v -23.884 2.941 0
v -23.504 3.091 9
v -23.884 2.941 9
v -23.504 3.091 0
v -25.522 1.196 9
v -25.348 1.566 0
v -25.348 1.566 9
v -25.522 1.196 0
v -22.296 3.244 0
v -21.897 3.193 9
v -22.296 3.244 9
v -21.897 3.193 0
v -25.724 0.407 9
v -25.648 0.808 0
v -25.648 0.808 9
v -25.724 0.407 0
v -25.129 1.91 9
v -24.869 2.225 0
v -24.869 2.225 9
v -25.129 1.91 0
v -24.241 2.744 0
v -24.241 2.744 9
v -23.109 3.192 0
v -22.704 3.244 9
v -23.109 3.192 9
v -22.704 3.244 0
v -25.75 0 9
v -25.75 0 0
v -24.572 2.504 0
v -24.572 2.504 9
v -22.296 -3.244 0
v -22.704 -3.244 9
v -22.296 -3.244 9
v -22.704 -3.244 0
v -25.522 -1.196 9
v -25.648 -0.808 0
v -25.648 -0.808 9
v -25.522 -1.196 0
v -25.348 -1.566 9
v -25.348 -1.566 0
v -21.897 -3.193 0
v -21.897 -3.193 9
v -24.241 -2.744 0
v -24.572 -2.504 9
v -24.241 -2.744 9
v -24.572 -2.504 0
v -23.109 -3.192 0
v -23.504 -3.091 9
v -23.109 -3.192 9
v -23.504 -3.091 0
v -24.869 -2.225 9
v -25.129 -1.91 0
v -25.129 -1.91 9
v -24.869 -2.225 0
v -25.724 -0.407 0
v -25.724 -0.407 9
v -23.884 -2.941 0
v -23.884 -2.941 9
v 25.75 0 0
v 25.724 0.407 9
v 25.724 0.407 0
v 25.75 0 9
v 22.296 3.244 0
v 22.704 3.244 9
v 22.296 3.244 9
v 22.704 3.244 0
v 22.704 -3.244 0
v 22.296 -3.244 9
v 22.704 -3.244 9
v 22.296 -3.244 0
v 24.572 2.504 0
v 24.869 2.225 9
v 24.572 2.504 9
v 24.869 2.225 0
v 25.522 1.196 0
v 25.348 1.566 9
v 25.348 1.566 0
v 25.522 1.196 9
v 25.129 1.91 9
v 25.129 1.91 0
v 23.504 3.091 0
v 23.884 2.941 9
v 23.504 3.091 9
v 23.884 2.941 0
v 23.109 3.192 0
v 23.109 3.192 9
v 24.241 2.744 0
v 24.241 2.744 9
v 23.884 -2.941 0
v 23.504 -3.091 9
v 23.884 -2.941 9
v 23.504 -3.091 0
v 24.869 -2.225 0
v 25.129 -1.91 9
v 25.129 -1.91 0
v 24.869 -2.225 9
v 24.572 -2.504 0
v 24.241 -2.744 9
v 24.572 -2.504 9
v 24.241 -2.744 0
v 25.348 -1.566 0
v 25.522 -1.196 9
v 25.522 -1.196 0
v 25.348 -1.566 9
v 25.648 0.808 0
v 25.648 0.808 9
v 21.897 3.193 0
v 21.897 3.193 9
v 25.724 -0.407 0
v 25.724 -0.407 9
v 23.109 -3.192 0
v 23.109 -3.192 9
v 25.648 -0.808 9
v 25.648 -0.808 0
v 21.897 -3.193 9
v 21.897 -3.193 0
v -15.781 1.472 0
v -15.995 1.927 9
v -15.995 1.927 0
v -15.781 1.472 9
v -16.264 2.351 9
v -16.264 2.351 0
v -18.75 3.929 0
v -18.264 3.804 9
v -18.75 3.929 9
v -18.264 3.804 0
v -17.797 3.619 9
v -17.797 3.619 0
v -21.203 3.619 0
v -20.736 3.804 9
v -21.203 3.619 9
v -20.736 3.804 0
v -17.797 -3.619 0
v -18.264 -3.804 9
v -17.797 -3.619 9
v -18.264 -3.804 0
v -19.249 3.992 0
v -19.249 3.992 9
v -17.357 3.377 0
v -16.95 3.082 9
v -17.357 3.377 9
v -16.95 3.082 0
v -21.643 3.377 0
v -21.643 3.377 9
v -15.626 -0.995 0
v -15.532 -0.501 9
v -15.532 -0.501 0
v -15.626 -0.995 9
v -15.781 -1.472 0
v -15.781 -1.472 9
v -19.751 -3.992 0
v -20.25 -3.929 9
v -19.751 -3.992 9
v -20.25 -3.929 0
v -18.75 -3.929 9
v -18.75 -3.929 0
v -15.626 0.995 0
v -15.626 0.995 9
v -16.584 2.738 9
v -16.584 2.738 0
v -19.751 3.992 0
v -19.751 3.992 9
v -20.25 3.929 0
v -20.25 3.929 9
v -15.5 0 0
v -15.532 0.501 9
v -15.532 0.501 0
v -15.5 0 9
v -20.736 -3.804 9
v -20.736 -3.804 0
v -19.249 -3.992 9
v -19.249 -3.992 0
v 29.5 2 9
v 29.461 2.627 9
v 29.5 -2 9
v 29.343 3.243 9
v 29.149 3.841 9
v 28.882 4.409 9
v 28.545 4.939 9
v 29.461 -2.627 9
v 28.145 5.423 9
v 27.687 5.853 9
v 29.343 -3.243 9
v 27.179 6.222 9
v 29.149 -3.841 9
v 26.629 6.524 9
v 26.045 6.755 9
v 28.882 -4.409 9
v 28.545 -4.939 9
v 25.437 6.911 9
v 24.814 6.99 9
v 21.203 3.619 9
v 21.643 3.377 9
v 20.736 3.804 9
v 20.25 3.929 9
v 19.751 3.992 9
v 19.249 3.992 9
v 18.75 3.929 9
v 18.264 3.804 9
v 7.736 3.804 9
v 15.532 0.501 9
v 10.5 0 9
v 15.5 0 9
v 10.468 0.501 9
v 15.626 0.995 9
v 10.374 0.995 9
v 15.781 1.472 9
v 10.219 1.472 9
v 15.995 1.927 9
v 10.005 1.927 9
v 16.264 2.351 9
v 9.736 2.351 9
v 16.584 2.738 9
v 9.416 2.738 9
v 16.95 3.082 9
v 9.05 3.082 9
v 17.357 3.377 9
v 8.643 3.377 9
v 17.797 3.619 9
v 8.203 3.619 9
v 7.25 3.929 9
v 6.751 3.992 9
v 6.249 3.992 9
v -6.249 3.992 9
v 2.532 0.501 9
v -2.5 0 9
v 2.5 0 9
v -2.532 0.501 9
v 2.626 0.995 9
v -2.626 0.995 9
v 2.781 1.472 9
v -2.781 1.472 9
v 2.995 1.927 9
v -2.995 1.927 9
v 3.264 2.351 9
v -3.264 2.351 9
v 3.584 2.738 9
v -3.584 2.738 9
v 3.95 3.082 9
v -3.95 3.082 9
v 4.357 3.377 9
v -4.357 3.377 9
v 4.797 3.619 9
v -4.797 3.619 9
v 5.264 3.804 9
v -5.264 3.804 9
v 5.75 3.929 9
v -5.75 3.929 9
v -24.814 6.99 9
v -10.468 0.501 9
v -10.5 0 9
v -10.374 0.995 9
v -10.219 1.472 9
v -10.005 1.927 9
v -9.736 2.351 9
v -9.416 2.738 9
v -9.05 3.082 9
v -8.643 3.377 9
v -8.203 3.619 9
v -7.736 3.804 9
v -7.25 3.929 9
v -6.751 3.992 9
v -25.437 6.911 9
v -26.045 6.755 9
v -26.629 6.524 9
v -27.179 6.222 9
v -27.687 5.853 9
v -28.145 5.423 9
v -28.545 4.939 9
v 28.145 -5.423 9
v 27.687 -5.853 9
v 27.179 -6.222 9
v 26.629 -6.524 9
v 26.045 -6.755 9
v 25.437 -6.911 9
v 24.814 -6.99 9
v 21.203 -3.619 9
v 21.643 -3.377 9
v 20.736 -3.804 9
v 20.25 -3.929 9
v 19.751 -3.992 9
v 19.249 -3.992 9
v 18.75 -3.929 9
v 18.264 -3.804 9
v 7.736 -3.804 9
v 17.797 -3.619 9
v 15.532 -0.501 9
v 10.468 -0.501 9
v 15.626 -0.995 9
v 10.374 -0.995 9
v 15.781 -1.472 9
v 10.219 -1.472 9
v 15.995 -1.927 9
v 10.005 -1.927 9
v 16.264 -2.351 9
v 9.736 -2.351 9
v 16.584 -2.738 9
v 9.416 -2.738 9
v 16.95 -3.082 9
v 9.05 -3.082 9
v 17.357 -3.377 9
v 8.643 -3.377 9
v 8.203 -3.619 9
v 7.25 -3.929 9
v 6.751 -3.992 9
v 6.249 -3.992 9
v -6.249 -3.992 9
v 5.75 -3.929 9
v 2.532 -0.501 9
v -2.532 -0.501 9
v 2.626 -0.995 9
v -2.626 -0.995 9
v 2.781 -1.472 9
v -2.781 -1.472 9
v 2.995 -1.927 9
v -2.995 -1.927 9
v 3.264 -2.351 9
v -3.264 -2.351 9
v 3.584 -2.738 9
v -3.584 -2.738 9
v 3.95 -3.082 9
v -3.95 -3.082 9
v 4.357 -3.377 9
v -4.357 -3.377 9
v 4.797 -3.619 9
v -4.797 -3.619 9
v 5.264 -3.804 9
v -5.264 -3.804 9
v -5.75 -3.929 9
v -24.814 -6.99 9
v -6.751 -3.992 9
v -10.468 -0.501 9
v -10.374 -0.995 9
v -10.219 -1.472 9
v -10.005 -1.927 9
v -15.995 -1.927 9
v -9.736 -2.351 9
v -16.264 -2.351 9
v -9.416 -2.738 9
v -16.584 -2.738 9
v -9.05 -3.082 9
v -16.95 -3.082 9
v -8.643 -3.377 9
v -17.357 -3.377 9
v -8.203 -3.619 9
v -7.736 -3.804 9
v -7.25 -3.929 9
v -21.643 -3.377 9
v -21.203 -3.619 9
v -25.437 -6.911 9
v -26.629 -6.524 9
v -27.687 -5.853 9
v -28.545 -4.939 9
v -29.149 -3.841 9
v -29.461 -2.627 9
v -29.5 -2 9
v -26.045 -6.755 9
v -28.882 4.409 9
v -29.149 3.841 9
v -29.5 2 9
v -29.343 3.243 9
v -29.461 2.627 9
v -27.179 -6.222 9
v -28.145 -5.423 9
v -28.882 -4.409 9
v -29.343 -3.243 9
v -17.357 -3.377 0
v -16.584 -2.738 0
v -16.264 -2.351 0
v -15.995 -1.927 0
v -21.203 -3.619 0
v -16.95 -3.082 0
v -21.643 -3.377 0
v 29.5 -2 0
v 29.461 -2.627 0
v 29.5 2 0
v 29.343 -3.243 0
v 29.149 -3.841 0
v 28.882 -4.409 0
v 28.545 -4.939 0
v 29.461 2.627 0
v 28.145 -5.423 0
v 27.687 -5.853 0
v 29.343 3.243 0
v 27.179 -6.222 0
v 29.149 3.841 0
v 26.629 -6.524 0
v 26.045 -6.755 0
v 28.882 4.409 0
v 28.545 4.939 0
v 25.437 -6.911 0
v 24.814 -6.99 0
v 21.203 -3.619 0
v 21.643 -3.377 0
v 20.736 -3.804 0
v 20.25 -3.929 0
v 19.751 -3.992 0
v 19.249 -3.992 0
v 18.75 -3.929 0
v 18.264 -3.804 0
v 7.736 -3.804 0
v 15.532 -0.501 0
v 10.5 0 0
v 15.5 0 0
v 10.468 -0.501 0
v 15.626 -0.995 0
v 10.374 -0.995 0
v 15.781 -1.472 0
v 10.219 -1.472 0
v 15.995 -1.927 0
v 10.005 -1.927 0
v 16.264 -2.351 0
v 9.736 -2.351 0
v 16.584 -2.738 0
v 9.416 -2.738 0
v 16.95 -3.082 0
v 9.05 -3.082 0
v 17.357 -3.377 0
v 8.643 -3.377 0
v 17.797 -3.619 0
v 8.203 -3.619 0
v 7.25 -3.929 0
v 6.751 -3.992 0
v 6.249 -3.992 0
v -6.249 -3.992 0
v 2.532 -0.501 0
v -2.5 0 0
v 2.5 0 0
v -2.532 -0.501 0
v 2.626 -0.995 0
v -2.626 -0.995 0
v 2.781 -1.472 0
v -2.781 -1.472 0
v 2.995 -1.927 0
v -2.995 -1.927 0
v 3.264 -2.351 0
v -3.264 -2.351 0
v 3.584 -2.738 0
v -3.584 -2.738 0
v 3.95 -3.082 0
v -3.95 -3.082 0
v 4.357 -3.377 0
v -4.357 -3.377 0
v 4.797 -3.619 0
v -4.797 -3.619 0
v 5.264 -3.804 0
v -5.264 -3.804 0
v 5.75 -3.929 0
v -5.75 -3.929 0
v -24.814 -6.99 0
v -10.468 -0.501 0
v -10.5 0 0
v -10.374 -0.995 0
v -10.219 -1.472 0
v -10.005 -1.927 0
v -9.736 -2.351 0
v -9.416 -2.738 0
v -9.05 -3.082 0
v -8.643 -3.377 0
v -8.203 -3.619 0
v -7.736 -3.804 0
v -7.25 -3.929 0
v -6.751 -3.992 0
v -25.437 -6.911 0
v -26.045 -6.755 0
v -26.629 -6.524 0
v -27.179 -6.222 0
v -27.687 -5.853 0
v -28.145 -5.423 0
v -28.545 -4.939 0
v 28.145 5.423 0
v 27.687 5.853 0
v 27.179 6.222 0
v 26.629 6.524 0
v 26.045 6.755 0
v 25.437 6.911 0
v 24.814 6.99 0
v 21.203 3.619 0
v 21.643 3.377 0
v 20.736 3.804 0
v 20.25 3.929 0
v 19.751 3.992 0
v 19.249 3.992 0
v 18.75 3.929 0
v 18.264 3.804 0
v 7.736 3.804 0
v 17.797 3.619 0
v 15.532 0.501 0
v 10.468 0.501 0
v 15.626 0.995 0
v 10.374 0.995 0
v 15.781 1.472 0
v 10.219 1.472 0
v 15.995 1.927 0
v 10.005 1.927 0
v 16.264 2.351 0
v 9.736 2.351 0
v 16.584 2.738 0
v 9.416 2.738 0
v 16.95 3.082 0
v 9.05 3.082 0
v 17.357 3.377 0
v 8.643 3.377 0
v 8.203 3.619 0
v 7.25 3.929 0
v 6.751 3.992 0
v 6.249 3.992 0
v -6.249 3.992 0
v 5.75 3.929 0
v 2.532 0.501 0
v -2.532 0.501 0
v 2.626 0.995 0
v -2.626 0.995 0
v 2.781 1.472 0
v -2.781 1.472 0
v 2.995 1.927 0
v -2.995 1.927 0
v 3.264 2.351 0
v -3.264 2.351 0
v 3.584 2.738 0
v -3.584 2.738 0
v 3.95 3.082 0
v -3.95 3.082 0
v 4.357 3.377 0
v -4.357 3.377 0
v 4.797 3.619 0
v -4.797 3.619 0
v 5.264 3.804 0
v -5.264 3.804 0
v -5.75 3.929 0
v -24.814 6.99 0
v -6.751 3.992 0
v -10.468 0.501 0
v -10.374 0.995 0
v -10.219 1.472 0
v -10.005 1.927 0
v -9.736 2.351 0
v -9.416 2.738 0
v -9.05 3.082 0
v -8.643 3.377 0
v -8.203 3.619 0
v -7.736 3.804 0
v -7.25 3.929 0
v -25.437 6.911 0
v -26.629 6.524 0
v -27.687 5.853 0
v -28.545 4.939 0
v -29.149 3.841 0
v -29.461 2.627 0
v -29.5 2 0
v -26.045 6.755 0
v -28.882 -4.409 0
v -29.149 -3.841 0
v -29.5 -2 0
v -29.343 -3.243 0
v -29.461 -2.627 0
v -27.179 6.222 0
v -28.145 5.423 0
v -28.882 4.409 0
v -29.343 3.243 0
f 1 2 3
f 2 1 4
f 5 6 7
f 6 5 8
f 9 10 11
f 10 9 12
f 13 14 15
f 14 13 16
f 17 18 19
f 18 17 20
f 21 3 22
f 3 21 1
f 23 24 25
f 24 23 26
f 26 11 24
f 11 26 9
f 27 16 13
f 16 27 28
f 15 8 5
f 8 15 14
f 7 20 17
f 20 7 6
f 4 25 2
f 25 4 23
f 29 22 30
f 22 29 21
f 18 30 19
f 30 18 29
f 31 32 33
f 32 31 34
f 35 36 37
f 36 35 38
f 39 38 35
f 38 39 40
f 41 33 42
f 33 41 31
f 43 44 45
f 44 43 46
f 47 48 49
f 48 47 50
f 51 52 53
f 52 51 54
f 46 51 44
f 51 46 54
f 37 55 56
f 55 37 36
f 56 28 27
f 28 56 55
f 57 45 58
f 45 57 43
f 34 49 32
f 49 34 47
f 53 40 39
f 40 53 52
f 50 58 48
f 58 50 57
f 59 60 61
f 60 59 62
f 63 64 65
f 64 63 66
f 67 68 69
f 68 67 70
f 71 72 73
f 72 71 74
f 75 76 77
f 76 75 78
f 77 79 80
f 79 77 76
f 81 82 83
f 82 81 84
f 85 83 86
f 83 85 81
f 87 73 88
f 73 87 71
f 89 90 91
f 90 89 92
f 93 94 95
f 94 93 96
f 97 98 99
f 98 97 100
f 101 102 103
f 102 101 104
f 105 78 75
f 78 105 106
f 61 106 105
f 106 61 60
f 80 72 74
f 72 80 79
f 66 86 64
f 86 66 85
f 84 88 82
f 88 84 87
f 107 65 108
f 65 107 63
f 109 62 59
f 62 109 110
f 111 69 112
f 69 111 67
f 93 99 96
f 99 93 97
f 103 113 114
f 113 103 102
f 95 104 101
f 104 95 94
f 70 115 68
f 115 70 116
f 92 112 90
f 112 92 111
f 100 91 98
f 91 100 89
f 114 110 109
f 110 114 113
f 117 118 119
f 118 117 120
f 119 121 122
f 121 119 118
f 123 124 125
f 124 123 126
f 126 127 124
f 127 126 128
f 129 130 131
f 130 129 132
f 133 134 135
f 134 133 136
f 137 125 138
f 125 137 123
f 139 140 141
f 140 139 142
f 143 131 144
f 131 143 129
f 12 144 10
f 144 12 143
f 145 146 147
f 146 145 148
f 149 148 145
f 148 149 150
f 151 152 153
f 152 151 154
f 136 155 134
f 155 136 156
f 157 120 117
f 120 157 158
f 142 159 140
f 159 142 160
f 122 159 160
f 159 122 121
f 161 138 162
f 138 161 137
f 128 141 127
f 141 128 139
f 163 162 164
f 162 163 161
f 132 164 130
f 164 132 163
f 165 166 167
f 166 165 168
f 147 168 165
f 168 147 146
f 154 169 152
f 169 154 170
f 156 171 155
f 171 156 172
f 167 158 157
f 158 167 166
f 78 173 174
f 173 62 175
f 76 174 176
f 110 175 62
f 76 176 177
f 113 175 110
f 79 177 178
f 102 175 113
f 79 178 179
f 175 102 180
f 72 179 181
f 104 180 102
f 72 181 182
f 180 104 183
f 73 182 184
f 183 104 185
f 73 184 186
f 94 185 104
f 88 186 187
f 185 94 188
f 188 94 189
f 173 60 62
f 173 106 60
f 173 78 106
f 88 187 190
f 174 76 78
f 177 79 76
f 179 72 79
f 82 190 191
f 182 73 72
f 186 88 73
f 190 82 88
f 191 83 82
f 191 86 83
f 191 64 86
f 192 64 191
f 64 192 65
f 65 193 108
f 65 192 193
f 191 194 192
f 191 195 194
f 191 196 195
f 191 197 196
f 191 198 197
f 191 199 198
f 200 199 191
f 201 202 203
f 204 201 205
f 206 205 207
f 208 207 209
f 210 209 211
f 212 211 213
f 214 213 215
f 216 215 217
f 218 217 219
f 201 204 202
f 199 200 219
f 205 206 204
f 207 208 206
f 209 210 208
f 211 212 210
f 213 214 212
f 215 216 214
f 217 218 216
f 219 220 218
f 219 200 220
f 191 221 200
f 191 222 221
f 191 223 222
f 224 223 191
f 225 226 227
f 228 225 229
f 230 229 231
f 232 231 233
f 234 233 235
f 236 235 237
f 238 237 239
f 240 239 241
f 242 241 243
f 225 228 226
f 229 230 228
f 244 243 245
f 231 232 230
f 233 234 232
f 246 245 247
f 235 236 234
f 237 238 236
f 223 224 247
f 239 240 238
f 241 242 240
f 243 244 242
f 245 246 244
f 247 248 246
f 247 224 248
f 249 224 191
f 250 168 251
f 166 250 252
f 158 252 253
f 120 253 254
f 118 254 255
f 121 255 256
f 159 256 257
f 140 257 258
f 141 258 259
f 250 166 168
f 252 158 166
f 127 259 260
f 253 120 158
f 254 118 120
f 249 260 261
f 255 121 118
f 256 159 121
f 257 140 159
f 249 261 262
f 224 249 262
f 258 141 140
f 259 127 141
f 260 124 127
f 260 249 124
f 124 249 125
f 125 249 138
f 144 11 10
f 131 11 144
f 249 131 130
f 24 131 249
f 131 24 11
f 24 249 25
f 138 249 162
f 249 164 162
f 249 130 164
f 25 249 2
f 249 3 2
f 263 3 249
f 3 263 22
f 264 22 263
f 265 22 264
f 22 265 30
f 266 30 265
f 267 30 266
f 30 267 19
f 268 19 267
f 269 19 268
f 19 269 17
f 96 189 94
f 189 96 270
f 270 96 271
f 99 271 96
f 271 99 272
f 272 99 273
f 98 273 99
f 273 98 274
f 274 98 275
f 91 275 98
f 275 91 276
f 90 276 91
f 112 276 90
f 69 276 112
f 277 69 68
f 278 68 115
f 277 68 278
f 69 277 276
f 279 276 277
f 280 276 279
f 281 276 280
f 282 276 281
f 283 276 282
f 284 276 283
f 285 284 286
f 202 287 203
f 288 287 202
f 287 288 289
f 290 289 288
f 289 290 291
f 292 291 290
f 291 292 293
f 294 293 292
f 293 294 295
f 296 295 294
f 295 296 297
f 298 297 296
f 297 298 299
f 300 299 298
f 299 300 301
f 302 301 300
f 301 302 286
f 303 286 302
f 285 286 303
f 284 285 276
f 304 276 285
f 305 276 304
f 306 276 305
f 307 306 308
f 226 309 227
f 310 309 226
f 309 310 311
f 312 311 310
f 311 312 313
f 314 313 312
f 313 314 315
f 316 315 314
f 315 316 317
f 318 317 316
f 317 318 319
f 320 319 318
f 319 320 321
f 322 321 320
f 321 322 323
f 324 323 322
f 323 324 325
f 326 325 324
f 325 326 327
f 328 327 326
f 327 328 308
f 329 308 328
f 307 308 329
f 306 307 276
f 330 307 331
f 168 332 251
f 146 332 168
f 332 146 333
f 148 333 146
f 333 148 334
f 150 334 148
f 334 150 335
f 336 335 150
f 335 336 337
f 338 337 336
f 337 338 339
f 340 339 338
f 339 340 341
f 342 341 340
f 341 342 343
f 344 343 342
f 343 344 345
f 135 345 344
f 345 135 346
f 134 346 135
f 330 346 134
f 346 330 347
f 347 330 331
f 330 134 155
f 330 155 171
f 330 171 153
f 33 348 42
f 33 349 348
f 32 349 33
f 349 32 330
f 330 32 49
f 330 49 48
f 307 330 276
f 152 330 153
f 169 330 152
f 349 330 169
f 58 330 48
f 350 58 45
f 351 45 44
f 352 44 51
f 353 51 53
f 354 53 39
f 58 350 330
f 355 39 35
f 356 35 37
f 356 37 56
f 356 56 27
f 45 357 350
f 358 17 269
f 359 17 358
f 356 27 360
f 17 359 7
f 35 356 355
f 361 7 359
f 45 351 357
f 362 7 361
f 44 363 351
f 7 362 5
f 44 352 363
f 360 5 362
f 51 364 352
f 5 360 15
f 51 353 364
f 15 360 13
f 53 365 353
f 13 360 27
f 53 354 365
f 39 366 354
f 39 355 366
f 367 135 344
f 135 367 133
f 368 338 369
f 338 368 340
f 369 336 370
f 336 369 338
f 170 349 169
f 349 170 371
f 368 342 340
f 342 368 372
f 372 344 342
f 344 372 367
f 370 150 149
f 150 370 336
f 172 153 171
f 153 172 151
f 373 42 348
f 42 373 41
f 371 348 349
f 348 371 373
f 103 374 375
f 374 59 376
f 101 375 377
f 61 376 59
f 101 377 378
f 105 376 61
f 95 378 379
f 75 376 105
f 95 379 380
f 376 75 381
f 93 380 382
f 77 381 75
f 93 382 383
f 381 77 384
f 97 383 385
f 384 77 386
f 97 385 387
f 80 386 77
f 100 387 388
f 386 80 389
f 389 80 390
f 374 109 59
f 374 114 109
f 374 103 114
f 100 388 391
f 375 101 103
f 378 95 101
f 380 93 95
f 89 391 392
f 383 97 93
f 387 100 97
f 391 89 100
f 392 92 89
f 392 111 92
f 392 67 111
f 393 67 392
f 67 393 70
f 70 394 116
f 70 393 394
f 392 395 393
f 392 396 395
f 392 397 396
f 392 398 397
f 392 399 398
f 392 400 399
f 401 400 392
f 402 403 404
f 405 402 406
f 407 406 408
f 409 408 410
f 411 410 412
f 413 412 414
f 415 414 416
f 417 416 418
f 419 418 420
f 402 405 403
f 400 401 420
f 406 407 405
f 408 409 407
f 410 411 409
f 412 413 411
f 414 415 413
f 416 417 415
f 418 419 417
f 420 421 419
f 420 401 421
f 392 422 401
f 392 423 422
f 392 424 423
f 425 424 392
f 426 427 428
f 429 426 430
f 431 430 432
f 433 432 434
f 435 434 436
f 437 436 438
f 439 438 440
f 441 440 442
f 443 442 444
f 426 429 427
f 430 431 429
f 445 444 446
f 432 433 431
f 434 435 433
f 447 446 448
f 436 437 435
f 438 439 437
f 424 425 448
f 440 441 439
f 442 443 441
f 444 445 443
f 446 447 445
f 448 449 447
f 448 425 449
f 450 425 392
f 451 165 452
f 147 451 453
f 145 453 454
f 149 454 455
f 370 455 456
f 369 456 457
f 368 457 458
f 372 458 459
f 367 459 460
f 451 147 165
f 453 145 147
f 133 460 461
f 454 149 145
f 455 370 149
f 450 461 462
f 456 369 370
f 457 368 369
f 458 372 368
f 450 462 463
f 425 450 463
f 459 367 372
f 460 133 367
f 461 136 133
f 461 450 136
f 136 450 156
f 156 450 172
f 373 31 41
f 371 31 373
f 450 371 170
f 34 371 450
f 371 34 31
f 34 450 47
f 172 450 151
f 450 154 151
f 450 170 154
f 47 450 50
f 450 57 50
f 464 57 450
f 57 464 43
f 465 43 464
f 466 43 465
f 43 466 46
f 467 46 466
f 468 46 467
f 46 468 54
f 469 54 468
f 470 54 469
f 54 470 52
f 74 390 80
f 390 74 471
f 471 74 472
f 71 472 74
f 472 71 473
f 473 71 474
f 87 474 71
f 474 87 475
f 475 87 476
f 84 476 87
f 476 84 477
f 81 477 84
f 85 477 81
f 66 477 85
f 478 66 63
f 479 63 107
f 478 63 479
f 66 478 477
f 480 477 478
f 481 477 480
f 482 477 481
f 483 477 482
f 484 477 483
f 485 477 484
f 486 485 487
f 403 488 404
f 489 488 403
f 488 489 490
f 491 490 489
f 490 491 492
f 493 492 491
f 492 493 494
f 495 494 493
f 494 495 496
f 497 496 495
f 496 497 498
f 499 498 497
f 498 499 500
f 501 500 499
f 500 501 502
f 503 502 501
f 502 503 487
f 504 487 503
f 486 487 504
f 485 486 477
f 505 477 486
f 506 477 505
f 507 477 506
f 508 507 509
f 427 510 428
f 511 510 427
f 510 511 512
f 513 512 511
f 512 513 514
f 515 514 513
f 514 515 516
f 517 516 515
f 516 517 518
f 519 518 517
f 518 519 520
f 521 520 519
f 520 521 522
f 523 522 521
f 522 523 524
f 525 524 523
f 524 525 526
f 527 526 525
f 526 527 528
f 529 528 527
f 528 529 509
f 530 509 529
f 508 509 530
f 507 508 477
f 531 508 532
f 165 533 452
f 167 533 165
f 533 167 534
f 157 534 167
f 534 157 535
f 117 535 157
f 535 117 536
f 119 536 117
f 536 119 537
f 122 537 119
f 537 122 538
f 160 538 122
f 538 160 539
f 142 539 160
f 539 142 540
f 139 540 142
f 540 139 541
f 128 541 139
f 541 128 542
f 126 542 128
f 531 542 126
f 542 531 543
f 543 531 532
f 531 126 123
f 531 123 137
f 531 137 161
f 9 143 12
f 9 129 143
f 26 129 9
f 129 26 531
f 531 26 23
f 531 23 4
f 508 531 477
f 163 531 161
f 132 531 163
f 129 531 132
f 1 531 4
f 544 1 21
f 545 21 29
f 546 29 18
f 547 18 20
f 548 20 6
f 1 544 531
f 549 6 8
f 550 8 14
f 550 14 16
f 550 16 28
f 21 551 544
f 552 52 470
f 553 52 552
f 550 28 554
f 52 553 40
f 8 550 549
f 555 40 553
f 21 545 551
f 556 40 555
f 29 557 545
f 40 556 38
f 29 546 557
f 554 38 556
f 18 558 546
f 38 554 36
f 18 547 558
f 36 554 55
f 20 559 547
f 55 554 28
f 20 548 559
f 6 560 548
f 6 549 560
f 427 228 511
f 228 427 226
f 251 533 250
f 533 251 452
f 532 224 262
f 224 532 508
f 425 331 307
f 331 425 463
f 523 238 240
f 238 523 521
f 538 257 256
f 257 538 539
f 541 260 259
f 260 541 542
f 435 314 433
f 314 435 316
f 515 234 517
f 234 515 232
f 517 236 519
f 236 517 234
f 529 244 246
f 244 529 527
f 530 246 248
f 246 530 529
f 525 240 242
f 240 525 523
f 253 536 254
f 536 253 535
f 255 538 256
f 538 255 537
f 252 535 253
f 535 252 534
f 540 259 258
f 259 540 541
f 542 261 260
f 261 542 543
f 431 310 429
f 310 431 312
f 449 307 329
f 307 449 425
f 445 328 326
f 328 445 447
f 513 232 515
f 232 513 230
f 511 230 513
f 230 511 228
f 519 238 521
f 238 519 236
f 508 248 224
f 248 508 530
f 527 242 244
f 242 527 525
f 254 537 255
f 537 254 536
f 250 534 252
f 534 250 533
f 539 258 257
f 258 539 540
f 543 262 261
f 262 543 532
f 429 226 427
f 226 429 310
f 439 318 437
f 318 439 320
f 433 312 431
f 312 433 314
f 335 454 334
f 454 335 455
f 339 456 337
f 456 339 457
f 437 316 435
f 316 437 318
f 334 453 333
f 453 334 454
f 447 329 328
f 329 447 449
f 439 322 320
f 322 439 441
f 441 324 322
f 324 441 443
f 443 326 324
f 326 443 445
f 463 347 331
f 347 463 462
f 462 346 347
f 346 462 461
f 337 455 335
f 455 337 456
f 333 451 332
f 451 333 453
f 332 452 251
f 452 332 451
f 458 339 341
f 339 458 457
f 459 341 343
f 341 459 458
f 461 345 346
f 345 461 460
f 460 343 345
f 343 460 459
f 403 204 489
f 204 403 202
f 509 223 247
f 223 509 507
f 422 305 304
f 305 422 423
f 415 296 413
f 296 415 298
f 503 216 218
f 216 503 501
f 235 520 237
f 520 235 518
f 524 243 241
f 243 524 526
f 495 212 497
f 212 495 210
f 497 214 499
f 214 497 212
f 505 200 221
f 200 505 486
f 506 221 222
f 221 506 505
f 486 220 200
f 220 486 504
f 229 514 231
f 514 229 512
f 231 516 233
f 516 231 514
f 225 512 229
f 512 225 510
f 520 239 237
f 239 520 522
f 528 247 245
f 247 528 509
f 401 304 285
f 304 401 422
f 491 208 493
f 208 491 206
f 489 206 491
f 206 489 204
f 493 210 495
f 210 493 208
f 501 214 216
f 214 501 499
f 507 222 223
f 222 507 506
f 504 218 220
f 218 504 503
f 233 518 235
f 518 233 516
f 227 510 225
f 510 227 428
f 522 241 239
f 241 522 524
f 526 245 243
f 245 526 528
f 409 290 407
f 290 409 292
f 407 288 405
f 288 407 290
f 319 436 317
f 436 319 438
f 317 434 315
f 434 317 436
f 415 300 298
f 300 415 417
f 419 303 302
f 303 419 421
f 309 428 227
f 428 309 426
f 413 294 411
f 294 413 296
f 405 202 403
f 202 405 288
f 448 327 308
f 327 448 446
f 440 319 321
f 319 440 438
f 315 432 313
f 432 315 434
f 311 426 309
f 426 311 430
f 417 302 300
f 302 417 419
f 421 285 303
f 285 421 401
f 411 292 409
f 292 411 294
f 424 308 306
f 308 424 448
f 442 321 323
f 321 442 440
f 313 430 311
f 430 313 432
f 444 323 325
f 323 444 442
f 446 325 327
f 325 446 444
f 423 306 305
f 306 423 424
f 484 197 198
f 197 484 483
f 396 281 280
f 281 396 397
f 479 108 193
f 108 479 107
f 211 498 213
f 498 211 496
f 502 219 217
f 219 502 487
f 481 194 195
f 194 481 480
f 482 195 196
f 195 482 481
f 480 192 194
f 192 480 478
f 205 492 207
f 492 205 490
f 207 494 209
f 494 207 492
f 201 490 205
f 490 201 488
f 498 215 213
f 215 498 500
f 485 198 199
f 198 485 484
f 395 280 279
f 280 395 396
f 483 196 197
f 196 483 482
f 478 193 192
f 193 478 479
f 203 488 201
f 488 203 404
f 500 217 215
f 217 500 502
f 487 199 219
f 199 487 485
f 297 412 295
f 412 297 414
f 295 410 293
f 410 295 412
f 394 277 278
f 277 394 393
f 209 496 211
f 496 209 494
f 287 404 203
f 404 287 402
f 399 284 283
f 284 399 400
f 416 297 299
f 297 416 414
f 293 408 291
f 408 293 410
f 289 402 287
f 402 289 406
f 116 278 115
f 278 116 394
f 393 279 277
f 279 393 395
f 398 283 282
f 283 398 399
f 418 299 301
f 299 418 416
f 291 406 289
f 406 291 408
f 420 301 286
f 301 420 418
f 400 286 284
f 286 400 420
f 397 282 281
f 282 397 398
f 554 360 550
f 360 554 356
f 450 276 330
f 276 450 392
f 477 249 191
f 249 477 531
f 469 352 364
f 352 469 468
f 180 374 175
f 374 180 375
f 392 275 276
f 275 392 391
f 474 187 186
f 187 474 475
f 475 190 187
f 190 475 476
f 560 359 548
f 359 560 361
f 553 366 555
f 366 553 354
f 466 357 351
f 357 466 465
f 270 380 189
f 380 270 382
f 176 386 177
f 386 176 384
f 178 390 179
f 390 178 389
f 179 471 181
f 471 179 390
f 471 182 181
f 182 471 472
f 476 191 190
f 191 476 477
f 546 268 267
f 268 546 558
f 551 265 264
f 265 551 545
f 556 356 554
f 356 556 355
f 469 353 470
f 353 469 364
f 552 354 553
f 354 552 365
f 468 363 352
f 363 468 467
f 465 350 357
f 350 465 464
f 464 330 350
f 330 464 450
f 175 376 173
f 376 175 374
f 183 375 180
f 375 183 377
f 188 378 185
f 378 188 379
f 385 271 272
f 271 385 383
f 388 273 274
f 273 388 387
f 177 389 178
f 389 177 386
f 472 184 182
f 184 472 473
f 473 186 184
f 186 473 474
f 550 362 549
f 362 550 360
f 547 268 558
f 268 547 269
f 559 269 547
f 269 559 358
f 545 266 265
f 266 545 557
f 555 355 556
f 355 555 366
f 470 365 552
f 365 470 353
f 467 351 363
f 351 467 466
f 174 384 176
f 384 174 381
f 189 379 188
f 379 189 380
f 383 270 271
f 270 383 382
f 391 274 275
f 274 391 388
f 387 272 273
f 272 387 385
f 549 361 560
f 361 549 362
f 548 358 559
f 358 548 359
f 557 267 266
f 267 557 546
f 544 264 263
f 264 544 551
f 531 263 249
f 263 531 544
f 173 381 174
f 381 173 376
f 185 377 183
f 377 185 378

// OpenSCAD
$fn = 50;


difference() {
	union() {
		hull() {
			translate(v = [-24.5000000000, 2.0000000000, 0]) {
				cylinder(h = 9, r = 5);
			}
			translate(v = [24.5000000000, 2.0000000000, 0]) {
				cylinder(h = 9, r = 5);
			}
			translate(v = [-24.5000000000, -2.0000000000, 0]) {
				cylinder(h = 9, r = 5);
			}
			translate(v = [24.5000000000, -2.0000000000, 0]) {
				cylinder(h = 9, r = 5);
			}
		}
	}
	union() {
		#translate(v = [-22.5000000000, 0.0000000000, -100.0000000000]) {
			cylinder(h = 200, r = 3.2500000000);
		}
		#translate(v = [-22.5000000000, 0.0000000000, -100.0000000000]) {
			cylinder(h = 200, r = 3.2500000000);
		}
		#translate(v = [22.5000000000, 0.0000000000, -100.0000000000]) {
			cylinder(h = 200, r = 3.2500000000);
		}
		#translate(v = [22.5000000000, 0.0000000000, -100.0000000000]) {
			cylinder(h = 200, r = 3.2500000000);
		}
		#translate(v = [-19.5000000000, 0, 0]) {
			cylinder(h = 9, r = 4.0000000000);
		}
		#translate(v = [-6.5000000000, 0, 0]) {
			cylinder(h = 9, r = 4.0000000000);
		}
		#translate(v = [6.5000000000, 0, 0]) {
			cylinder(h = 9, r = 4.0000000000);
		}
		#translate(v = [19.5000000000, 0, 0]) {
			cylinder(h = 9, r = 4.0000000000);
		}
	}
}
